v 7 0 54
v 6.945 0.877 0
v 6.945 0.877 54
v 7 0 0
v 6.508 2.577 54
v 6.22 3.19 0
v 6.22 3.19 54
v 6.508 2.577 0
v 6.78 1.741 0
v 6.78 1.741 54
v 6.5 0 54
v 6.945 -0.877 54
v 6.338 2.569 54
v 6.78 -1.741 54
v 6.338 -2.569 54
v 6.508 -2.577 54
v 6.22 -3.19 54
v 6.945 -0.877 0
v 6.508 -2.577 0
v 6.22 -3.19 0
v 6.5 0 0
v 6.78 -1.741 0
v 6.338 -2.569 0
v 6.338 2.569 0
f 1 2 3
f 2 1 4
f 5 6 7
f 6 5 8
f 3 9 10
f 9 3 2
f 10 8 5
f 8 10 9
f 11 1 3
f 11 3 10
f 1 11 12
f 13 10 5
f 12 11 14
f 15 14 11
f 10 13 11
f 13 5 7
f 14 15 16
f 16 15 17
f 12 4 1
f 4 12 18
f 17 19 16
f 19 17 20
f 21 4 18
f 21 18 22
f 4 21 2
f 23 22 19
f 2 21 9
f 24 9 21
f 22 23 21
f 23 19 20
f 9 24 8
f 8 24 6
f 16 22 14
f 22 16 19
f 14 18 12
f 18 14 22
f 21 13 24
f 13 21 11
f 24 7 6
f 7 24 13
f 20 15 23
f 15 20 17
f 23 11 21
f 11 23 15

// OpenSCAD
$fn = 50;


difference() {
	union() {
		cylinder(h = 54, r = 7.0000000000);
		translate(v = [-17.0000000000, 0, 0]) {
			cylinder(h = 54, r = 7.0000000000);
		}
	}
	union() {
		cylinder(h = 54, r = 3.2500000000);
		cylinder(h = 54, r = 1.8000000000);
		cylinder(h = 54, r = 1.8000000000);
		cylinder(h = 54, r = 1.8000000000);
		translate(v = [-21.5000000000, 0, 0]) {
			hull() {
				translate(v = [-3.7500000000, 0.0000000000, 0]) {
					cylinder(h = 54, r = 10.5000000000);
				}
				translate(v = [3.7500000000, 0.0000000000, 0]) {
					cylinder(h = 54, r = 10.5000000000);
				}
				translate(v = [-3.7500000000, -0.0000000000, 0]) {
					cylinder(h = 54, r = 10.5000000000);
				}
				translate(v = [3.7500000000, -0.0000000000, 0]) {
					cylinder(h = 54, r = 10.5000000000);
				}
			}
		}
		translate(v = [-14.0000000000, 0, 0.0000000000]) {
			cylinder(h = 54, r = 20.5000000000);
		}
	}
}
